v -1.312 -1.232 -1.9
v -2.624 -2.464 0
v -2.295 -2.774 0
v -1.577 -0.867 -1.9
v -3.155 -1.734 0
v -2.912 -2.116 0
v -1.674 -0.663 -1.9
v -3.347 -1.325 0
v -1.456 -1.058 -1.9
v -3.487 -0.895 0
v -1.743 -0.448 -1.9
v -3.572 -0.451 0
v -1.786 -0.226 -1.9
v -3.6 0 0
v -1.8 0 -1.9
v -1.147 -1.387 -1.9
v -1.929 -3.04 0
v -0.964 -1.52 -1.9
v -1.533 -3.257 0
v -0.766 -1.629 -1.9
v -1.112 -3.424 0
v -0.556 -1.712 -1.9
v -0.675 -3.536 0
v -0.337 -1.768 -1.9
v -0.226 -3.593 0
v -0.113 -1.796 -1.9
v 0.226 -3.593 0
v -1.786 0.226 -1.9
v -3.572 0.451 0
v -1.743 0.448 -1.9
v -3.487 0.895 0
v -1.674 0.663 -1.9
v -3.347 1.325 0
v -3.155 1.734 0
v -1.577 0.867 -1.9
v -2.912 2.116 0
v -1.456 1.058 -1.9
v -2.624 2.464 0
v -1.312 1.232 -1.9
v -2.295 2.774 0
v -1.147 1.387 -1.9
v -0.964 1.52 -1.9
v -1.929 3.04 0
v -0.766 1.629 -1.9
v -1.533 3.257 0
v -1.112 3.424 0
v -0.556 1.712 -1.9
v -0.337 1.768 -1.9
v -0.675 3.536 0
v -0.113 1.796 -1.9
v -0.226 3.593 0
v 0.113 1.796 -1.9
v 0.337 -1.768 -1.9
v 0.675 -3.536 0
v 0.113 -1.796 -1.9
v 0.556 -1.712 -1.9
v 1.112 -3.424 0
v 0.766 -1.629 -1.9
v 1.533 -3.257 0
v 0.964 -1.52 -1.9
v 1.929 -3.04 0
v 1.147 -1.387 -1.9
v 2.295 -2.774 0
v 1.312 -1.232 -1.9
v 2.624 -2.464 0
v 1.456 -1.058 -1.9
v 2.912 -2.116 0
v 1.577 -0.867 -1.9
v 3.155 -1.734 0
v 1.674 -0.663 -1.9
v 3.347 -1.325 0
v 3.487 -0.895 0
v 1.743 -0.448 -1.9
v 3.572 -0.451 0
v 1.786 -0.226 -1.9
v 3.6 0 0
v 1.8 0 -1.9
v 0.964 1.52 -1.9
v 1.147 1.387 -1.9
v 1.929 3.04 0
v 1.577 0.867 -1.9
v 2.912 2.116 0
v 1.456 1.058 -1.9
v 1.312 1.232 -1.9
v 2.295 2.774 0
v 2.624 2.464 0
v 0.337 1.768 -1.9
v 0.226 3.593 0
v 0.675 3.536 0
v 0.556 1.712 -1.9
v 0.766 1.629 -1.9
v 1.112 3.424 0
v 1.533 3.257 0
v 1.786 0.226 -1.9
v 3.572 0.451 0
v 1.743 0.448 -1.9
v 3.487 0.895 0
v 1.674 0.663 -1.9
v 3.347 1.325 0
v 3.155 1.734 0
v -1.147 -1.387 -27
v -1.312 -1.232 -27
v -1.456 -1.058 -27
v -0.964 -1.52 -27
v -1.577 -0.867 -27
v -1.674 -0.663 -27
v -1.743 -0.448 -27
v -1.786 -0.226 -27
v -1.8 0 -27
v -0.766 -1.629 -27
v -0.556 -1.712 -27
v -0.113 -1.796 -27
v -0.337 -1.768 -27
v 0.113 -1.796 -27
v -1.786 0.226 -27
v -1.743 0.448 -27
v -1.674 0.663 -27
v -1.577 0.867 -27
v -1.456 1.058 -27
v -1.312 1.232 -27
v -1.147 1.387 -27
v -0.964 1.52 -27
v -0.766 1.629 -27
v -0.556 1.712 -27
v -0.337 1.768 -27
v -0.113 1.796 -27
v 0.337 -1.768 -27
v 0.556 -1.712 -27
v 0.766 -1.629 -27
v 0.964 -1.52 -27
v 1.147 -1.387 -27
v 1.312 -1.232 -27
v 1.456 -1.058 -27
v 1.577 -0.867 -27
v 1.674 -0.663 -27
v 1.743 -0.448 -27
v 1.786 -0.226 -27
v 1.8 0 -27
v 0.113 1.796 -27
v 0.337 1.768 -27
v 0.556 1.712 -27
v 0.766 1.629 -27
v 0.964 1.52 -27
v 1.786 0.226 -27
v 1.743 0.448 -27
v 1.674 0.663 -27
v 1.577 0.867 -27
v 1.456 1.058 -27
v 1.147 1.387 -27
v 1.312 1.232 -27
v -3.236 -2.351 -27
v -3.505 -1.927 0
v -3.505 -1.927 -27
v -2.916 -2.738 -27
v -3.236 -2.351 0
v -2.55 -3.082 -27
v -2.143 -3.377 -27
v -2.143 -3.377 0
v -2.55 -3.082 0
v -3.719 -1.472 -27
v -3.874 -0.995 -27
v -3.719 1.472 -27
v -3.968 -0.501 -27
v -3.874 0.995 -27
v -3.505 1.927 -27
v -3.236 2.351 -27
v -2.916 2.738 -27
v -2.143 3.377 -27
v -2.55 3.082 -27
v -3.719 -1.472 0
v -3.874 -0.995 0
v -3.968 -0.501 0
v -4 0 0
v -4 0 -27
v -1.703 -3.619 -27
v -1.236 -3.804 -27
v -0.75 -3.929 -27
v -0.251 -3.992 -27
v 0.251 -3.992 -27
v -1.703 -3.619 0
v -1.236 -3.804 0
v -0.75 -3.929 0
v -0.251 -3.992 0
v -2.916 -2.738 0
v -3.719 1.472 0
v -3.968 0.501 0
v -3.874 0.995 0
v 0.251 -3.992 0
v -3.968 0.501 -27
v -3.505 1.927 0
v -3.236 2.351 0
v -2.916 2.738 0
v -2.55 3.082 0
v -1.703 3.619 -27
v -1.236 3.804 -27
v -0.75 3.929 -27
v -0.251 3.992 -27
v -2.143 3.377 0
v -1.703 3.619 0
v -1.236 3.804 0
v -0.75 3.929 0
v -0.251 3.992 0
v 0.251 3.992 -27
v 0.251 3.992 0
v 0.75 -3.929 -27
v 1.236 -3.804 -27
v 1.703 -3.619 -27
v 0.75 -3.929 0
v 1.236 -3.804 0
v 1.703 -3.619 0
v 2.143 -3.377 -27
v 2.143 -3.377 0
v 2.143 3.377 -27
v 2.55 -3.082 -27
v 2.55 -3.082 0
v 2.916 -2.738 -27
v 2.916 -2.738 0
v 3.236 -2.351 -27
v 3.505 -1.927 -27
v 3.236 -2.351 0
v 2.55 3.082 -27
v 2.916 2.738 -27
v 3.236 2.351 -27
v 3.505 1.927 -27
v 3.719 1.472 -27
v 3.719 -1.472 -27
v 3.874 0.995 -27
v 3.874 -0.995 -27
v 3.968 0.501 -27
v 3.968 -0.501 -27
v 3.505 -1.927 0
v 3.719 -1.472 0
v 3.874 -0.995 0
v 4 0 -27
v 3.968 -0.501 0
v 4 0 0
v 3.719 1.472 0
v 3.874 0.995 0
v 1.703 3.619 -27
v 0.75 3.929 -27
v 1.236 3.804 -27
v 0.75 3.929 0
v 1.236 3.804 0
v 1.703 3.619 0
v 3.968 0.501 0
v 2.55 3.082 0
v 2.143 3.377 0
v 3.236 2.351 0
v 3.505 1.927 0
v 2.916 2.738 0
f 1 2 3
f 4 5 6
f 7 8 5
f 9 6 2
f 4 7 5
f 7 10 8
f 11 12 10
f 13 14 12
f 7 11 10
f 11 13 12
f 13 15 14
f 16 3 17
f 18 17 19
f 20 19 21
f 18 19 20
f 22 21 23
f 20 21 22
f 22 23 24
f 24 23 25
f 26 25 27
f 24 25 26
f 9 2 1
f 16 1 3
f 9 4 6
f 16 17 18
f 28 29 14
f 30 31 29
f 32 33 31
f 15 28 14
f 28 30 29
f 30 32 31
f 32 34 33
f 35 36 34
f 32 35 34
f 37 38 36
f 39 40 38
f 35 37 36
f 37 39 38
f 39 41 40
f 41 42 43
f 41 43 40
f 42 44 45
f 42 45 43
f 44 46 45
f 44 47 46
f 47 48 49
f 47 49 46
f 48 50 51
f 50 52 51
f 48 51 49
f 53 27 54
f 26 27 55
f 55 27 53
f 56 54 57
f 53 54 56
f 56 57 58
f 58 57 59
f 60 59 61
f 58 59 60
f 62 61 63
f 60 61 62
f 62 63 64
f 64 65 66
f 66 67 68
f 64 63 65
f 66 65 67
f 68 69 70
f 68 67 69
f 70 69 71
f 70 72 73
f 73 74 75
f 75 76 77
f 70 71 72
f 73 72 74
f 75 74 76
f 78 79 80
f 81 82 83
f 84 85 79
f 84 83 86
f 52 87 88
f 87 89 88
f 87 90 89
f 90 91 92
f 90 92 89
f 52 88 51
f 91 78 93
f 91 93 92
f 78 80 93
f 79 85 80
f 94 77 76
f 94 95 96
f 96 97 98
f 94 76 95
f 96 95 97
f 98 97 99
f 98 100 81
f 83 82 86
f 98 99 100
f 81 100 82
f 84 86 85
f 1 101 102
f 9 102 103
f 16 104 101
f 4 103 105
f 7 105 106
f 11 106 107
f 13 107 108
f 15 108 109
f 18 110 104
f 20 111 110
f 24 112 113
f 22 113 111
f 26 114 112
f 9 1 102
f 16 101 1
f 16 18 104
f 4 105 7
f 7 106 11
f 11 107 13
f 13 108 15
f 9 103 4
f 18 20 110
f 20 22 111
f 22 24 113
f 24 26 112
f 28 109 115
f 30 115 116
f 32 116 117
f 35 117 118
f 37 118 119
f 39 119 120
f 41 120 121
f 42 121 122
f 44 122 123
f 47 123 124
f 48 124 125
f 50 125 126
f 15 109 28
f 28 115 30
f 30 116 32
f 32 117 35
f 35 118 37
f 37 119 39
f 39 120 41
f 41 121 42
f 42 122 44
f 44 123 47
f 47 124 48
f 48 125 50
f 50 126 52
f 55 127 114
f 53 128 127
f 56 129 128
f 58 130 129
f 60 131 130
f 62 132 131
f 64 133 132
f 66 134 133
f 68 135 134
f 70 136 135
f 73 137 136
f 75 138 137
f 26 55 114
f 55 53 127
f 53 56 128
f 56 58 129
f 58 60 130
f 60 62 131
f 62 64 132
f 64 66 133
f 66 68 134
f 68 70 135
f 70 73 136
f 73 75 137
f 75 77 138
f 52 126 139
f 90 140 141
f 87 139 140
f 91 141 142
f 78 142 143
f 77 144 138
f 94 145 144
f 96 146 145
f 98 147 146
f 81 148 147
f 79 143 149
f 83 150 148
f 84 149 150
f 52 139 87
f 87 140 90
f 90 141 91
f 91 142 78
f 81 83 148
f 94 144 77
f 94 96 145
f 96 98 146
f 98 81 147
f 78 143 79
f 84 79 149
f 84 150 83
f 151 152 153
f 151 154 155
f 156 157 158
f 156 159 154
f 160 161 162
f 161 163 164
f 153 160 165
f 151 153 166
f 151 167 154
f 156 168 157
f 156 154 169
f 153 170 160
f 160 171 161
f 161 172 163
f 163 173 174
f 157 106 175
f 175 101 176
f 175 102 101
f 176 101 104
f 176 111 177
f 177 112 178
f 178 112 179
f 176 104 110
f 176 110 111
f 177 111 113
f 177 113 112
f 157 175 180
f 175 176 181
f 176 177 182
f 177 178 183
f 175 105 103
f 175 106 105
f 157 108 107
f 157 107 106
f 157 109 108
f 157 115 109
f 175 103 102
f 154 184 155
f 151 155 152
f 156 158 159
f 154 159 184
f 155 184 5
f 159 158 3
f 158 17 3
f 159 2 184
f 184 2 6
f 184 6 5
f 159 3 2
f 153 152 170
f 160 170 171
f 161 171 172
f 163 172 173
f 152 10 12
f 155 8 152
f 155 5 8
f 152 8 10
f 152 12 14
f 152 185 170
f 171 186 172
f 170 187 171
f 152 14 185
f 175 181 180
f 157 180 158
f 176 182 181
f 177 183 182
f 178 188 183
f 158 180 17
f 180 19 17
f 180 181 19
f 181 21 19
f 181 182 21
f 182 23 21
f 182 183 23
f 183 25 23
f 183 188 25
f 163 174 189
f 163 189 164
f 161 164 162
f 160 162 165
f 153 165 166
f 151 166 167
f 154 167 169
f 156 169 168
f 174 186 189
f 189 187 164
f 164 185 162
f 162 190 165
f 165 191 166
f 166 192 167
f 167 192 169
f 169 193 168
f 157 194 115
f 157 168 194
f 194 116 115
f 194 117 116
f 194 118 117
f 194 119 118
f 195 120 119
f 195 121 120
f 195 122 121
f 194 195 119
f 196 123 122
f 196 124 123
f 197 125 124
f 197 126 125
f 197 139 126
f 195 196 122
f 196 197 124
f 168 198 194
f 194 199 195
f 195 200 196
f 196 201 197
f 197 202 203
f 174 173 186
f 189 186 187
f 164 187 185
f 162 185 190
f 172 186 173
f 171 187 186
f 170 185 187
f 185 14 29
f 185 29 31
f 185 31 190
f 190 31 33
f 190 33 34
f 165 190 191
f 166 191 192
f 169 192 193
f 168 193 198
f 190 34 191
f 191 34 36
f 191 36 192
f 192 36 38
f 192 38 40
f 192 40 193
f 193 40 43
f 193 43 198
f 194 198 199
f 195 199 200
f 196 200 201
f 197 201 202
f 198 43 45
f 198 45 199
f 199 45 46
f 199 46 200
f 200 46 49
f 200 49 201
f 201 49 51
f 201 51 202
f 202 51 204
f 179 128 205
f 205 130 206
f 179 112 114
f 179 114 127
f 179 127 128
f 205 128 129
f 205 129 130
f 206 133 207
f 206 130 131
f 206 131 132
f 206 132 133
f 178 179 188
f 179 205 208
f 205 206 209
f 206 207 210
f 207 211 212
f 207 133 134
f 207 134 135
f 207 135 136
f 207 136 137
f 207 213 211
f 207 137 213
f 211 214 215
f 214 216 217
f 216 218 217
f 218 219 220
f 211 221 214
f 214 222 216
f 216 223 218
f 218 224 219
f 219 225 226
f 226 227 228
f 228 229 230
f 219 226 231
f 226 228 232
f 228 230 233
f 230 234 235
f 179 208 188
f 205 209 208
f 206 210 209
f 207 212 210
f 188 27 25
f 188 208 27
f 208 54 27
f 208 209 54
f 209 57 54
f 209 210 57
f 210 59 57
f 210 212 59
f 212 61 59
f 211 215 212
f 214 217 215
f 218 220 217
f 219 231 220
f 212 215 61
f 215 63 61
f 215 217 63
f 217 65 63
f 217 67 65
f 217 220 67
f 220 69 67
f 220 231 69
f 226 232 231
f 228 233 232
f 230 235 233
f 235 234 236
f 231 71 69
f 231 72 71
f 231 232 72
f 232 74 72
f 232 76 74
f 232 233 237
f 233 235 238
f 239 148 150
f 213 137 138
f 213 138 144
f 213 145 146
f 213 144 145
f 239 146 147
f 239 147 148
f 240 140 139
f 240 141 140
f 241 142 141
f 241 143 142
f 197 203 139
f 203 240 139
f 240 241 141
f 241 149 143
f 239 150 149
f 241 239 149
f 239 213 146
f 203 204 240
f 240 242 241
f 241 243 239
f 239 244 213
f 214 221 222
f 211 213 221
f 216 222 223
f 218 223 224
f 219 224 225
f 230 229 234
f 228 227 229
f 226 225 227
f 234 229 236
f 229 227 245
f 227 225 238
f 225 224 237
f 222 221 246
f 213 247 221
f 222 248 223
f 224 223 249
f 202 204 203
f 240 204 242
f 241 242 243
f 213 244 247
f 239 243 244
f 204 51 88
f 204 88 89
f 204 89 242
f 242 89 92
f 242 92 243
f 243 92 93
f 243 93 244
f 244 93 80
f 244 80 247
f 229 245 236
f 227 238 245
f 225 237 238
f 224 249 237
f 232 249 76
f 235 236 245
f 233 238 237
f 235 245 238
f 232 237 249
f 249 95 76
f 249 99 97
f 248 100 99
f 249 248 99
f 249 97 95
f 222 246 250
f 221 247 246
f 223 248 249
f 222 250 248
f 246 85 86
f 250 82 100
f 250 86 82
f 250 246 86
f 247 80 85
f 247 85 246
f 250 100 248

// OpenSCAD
$fn = 50;

difference() {
	union() {
		translate(v = [0, 0, -27.0]) {
			cylinder(h = 27, r = 4.0);
		}
	}
	union() {
		translate(v = [0, 0, 0]) {
			rotate(a = [0, 0, 0]) {
				difference() {
					union() {
						translate(v = [0, 0, -30.0]) {
							cylinder(h = 30, r = 1.5);
						}
						translate(v = [0, 0, -1.9]) {
							cylinder(h = 1.9, r1 = 1.8, r2 = 3.6);
						}
						translate(v = [0, 0, -30.0]) {
							cylinder(h = 30, r = 1.8);
						}
						translate(v = [0, 0, -30.0]) {
							cylinder(h = 30, r = 1.5);
						}
					}
					union();
				}
			}
		}
	}
}
